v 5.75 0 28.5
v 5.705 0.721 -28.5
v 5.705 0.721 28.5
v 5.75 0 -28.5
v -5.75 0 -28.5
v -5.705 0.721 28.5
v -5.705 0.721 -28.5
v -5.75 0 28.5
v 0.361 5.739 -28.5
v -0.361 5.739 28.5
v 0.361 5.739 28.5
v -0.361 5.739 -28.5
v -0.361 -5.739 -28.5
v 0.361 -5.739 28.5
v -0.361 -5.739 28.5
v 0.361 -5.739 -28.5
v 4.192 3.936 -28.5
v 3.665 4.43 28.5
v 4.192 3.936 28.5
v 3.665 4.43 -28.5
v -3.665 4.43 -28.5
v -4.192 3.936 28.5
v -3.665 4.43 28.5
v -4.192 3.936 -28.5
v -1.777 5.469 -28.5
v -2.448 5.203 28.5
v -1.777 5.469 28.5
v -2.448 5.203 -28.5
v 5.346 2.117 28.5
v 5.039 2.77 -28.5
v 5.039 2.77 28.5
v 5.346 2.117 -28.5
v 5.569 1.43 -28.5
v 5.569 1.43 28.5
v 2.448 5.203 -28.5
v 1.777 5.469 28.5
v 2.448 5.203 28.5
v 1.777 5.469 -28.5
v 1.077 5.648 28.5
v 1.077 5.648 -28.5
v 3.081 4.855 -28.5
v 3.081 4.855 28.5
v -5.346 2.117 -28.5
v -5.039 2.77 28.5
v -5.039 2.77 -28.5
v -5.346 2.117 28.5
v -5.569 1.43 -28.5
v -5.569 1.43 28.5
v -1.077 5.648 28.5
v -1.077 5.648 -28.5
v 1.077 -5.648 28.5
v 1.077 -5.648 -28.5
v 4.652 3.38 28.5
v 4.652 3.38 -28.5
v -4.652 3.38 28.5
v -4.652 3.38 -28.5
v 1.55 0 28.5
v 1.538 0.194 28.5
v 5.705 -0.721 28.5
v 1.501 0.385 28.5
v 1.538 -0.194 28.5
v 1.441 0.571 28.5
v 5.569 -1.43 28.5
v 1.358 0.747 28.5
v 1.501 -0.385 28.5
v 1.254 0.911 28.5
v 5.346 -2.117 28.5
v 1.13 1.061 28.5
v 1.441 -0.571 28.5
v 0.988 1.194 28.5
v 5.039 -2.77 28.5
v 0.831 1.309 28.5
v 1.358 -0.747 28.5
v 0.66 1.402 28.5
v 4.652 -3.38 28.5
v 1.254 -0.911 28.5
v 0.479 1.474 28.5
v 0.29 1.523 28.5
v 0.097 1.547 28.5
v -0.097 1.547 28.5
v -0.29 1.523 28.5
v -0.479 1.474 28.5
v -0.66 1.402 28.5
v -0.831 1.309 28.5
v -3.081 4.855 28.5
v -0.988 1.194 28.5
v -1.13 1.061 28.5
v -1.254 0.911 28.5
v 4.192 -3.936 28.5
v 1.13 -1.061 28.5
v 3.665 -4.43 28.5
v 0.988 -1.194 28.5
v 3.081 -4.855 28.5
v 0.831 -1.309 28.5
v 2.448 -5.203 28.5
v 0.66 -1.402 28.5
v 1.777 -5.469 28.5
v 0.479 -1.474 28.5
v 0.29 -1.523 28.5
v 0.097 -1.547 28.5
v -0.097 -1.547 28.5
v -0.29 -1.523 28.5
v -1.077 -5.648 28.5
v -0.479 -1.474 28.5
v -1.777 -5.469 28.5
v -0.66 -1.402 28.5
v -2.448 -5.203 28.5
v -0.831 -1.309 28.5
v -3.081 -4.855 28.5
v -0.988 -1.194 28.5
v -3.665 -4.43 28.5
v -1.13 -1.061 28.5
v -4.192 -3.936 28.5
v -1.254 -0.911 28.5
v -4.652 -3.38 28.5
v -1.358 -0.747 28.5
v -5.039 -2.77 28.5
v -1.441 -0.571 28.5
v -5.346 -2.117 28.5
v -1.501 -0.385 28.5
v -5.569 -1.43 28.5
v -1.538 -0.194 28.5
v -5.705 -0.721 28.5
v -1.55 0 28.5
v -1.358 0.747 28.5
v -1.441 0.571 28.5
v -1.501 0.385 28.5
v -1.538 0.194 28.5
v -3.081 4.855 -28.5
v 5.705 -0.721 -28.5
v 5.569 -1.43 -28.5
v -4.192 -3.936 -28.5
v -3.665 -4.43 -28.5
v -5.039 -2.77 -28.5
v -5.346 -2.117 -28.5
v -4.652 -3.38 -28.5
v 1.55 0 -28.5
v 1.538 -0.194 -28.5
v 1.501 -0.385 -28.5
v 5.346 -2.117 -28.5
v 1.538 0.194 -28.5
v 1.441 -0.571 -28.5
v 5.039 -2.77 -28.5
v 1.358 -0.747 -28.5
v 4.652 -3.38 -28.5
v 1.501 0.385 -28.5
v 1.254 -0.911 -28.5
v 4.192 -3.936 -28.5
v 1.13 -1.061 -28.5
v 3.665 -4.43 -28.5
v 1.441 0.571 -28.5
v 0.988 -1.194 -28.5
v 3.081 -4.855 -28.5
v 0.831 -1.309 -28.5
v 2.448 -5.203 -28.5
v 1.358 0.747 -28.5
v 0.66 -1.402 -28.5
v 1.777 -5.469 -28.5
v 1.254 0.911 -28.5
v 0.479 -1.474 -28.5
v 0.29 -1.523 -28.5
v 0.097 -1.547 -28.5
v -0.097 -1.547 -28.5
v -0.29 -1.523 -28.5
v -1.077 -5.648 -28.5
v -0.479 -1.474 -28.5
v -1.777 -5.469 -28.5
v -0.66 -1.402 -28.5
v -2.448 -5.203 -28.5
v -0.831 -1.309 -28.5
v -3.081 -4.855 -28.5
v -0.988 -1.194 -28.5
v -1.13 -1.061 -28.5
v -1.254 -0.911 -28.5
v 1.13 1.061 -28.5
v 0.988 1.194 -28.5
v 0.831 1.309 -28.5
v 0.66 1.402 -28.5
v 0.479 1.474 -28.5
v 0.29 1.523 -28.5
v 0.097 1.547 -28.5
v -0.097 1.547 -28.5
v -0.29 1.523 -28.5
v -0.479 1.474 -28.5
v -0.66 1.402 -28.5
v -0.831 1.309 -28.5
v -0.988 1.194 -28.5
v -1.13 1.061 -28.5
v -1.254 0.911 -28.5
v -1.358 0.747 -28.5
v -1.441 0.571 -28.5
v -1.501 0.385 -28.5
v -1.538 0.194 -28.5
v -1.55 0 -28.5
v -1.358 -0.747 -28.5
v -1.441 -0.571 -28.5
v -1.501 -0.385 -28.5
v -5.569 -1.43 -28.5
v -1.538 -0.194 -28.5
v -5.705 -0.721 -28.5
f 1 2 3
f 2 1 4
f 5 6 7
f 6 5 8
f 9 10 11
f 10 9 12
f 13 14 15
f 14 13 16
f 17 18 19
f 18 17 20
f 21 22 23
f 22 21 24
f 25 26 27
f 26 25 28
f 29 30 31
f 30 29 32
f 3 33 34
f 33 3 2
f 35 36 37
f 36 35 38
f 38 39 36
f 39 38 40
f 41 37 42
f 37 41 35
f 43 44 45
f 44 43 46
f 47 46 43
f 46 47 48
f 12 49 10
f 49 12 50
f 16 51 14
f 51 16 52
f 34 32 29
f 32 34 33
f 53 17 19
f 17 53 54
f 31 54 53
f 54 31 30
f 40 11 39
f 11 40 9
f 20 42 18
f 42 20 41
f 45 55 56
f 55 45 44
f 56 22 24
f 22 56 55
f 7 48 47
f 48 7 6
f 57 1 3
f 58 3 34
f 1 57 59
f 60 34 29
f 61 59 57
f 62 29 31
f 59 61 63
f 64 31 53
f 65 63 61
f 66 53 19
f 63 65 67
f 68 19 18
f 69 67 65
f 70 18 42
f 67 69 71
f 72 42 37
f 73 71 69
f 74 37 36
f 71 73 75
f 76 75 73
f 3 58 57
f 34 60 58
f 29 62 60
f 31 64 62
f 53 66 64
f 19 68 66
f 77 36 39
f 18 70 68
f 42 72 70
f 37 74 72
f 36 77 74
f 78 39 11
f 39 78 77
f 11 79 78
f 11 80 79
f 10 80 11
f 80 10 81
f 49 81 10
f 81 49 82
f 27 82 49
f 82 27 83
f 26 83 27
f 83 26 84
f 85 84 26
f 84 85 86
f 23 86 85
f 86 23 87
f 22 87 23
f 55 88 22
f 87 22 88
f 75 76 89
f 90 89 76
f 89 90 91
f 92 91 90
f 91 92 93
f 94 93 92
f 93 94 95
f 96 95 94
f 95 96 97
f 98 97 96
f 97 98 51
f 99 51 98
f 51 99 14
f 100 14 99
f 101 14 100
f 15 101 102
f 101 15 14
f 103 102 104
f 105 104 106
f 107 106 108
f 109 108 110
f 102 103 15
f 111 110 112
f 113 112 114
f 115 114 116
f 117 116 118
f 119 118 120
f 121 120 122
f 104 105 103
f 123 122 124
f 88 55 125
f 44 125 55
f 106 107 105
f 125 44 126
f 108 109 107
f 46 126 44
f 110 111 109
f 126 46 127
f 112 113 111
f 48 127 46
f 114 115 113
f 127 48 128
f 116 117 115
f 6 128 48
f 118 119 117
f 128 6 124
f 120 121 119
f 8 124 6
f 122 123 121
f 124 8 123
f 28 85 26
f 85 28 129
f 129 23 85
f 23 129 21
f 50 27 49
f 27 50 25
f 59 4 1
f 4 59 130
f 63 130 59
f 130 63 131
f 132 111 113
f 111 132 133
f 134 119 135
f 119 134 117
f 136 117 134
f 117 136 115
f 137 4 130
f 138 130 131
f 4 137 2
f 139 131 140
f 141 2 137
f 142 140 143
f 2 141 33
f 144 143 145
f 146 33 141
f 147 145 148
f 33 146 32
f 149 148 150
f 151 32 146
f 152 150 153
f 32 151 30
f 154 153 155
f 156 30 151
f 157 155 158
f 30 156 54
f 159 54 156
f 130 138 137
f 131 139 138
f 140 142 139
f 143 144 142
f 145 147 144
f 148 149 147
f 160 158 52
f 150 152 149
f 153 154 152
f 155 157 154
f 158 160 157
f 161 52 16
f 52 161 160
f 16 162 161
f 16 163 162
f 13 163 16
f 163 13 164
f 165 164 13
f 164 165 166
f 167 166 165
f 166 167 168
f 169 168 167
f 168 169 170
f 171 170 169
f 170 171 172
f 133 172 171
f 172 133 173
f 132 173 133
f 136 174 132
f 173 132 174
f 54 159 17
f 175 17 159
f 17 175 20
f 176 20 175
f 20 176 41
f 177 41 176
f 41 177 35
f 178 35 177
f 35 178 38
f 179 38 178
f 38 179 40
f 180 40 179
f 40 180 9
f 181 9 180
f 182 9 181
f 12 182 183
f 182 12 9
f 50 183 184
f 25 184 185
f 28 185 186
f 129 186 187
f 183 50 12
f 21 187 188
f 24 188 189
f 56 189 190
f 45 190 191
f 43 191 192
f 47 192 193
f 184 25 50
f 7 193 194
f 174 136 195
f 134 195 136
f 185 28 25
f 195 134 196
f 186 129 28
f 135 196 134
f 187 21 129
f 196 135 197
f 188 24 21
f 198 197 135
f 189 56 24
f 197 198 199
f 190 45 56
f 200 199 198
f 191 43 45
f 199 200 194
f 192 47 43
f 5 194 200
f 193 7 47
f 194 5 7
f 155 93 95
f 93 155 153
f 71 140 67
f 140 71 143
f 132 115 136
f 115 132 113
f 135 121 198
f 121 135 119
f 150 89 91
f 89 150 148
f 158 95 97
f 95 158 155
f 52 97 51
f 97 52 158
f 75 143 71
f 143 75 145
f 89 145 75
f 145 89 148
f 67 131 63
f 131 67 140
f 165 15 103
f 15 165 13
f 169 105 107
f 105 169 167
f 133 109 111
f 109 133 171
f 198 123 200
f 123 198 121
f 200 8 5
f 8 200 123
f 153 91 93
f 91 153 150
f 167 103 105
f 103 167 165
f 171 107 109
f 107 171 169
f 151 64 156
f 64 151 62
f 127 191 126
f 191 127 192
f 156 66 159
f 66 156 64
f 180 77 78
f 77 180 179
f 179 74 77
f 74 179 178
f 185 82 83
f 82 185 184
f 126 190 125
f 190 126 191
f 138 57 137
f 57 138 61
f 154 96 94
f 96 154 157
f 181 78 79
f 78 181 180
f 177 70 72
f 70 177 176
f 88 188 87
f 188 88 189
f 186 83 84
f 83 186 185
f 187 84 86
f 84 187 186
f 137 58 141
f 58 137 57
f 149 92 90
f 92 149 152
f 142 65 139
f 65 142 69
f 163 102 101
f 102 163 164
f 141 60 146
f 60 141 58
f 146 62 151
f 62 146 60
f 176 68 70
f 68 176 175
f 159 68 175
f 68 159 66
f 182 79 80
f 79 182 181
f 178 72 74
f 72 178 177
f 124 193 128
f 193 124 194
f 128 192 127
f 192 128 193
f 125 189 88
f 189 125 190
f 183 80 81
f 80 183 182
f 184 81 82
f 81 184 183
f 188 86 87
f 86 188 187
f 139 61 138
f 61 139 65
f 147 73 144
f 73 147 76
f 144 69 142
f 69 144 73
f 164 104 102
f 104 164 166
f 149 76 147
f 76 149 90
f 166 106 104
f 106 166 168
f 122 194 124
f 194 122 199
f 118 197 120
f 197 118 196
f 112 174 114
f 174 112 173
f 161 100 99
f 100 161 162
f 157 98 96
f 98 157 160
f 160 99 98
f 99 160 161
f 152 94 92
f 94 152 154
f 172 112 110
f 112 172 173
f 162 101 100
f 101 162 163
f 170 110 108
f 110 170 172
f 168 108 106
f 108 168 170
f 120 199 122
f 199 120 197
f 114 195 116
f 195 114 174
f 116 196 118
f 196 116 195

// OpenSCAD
$fn = 50;


difference() {
	union() {
		translate(v = [0, 0, -28.5000000000]) {
			cylinder(h = 57, r = 5.7500000000);
		}
	}
	union() {
		translate(v = [0, 0, -100.0000000000]) {
			cylinder(h = 200, r = 1.5500000000);
		}
	}
}
